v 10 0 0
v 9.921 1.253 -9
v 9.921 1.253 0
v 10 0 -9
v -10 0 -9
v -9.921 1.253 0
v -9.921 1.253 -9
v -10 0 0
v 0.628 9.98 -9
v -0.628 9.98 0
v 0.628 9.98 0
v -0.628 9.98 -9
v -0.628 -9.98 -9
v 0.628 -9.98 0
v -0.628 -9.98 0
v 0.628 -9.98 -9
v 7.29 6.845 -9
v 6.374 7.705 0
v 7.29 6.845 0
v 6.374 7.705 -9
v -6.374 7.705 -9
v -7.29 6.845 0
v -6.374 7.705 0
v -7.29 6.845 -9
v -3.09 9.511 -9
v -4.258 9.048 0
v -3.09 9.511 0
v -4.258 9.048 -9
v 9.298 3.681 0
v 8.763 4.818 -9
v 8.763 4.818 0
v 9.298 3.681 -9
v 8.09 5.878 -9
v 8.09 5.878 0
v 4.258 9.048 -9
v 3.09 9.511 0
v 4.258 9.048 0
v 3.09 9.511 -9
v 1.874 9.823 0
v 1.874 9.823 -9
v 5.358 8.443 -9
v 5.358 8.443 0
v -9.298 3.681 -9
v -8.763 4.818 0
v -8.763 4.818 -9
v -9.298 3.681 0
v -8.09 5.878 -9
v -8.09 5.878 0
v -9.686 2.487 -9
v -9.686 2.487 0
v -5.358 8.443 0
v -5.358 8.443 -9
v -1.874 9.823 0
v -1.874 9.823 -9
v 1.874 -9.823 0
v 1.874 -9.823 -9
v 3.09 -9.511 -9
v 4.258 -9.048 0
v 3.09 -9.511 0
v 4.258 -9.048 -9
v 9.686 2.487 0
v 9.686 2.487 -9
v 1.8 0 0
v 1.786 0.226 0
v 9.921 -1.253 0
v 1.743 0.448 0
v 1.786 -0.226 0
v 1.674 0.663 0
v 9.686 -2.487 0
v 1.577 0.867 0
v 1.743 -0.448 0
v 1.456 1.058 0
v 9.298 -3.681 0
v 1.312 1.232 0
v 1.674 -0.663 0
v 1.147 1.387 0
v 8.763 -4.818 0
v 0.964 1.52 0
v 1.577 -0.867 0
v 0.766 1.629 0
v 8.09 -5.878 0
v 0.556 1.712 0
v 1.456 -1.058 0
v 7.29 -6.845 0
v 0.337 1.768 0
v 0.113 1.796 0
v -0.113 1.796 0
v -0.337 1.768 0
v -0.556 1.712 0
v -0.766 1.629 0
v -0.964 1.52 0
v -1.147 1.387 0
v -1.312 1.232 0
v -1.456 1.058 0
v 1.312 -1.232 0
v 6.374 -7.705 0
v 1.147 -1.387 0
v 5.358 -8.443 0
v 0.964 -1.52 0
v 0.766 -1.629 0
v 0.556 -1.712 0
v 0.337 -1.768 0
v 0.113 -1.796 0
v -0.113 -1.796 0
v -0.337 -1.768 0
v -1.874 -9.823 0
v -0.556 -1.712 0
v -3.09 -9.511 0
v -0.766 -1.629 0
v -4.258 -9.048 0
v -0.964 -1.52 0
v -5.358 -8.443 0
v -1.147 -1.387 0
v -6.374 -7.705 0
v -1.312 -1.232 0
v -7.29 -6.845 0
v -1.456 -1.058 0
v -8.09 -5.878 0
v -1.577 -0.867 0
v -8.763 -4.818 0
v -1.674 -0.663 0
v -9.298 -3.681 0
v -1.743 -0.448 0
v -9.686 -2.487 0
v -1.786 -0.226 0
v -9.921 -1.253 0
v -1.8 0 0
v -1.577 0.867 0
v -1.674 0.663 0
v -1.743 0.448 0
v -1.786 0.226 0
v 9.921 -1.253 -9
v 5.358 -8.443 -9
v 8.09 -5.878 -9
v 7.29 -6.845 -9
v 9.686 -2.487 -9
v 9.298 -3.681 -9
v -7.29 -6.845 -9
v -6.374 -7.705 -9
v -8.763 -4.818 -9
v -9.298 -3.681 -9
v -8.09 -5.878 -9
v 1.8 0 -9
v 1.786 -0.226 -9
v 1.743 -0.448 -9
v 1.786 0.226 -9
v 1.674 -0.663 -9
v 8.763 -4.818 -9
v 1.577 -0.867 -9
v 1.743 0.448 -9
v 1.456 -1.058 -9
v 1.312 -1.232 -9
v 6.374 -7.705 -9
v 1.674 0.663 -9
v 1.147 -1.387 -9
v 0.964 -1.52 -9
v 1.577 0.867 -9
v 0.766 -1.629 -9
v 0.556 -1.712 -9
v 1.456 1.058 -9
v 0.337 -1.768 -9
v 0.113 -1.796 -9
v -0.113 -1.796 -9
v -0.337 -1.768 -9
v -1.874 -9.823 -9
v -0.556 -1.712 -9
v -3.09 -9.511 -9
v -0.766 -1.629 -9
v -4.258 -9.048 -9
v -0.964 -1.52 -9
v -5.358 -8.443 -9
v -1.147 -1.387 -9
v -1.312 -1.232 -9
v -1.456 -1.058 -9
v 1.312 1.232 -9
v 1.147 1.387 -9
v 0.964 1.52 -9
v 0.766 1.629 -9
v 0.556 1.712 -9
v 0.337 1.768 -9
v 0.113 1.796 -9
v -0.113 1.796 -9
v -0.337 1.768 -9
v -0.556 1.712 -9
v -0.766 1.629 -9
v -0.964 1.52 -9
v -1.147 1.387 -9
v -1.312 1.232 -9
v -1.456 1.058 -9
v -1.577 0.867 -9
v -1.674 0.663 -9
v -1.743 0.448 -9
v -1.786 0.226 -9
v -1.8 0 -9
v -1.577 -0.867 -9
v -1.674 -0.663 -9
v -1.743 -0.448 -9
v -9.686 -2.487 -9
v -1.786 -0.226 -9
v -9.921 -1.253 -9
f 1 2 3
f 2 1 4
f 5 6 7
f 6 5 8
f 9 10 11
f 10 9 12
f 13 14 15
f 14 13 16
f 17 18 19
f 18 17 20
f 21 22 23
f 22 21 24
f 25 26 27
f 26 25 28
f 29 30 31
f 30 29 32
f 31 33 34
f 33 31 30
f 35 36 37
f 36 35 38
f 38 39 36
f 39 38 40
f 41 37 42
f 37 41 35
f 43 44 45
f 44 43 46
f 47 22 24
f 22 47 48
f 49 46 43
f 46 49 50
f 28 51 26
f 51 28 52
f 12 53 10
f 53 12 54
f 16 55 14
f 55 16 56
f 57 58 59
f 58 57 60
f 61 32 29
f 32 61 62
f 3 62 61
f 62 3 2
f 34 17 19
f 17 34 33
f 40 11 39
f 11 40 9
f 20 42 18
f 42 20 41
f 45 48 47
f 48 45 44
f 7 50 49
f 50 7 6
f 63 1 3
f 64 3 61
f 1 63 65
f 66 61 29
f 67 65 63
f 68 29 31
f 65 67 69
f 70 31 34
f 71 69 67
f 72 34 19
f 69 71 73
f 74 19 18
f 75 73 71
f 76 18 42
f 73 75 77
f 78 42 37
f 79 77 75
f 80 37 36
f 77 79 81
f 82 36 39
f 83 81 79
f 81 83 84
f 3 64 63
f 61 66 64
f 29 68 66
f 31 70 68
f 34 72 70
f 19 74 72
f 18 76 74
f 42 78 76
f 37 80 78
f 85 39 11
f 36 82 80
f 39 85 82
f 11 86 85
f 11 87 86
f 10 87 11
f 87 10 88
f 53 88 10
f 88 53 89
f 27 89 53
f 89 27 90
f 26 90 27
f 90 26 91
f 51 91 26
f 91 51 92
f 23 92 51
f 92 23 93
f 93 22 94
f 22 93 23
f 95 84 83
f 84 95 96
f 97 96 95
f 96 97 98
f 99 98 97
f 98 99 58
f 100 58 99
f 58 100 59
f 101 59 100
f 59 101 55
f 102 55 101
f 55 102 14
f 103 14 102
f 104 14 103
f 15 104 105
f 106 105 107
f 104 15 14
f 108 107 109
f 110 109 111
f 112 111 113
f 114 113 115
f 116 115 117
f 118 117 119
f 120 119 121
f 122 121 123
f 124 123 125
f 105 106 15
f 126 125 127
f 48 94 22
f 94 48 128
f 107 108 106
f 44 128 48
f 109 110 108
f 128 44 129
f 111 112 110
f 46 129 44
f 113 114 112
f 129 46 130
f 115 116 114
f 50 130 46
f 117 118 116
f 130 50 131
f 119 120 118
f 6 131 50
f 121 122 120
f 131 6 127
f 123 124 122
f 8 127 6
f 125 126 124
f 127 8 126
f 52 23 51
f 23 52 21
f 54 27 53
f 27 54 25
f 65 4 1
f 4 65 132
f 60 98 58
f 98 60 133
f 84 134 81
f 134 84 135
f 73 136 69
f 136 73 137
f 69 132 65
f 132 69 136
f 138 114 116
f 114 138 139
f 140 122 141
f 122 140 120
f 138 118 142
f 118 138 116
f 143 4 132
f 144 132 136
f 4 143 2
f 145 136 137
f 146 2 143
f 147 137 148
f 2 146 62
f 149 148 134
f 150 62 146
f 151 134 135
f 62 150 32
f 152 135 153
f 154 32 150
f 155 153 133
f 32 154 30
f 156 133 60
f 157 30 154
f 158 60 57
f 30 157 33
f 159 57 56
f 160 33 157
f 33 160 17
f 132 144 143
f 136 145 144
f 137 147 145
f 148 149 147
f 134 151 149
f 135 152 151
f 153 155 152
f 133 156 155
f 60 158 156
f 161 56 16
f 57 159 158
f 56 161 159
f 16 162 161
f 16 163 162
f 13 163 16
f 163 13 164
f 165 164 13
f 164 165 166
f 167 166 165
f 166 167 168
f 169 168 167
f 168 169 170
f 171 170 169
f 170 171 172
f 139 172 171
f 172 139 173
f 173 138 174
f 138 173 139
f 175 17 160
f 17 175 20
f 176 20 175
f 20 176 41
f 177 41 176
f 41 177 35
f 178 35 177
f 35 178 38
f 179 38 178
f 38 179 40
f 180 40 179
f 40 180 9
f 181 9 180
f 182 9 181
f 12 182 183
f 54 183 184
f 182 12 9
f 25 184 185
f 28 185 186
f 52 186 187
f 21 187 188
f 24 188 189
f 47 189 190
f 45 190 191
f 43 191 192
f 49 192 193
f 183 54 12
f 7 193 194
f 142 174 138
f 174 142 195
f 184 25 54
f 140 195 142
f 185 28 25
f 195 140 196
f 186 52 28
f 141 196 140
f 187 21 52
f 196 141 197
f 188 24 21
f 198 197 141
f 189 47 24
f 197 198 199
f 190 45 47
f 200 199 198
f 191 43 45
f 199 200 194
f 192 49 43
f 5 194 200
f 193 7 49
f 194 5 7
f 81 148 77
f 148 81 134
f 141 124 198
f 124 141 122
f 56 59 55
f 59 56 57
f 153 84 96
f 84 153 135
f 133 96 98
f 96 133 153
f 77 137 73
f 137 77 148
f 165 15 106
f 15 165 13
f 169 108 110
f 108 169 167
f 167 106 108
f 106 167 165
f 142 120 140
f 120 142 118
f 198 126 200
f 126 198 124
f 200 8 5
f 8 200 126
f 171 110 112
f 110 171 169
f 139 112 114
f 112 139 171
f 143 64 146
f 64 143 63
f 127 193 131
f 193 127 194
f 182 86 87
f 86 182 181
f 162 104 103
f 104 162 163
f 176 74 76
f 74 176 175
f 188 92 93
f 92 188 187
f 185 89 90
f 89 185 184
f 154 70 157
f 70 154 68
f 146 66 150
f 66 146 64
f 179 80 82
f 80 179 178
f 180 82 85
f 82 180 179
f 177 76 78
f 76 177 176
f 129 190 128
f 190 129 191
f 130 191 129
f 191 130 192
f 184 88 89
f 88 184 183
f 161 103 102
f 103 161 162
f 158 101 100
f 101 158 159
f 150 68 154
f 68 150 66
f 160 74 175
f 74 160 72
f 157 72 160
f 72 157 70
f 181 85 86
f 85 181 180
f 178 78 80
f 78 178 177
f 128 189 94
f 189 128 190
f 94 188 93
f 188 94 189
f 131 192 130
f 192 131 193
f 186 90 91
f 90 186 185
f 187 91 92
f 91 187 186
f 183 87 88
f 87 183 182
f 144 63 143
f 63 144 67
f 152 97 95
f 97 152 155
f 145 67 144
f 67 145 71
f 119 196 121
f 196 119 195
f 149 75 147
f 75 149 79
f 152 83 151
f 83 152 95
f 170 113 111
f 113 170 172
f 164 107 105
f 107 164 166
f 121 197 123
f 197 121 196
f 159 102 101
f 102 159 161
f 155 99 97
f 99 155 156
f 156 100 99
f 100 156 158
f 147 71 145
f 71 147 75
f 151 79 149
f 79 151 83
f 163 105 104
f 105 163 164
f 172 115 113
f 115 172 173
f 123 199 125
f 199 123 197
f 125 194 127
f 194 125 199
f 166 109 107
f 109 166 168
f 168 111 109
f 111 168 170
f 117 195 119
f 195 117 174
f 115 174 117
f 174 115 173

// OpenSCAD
$fn = 50;


difference() {
	union() {
		translate(v = [0, 0, -9.0000000000]) {
			cylinder(h = 9, r = 10.0000000000);
		}
		cylinder(h = 0, r = 20.0000000000);
	}
	union() {
		#translate(v = [0, 0, -9]) {
			cylinder(h = 9, r = 1.8000000000);
		}
	}
}
